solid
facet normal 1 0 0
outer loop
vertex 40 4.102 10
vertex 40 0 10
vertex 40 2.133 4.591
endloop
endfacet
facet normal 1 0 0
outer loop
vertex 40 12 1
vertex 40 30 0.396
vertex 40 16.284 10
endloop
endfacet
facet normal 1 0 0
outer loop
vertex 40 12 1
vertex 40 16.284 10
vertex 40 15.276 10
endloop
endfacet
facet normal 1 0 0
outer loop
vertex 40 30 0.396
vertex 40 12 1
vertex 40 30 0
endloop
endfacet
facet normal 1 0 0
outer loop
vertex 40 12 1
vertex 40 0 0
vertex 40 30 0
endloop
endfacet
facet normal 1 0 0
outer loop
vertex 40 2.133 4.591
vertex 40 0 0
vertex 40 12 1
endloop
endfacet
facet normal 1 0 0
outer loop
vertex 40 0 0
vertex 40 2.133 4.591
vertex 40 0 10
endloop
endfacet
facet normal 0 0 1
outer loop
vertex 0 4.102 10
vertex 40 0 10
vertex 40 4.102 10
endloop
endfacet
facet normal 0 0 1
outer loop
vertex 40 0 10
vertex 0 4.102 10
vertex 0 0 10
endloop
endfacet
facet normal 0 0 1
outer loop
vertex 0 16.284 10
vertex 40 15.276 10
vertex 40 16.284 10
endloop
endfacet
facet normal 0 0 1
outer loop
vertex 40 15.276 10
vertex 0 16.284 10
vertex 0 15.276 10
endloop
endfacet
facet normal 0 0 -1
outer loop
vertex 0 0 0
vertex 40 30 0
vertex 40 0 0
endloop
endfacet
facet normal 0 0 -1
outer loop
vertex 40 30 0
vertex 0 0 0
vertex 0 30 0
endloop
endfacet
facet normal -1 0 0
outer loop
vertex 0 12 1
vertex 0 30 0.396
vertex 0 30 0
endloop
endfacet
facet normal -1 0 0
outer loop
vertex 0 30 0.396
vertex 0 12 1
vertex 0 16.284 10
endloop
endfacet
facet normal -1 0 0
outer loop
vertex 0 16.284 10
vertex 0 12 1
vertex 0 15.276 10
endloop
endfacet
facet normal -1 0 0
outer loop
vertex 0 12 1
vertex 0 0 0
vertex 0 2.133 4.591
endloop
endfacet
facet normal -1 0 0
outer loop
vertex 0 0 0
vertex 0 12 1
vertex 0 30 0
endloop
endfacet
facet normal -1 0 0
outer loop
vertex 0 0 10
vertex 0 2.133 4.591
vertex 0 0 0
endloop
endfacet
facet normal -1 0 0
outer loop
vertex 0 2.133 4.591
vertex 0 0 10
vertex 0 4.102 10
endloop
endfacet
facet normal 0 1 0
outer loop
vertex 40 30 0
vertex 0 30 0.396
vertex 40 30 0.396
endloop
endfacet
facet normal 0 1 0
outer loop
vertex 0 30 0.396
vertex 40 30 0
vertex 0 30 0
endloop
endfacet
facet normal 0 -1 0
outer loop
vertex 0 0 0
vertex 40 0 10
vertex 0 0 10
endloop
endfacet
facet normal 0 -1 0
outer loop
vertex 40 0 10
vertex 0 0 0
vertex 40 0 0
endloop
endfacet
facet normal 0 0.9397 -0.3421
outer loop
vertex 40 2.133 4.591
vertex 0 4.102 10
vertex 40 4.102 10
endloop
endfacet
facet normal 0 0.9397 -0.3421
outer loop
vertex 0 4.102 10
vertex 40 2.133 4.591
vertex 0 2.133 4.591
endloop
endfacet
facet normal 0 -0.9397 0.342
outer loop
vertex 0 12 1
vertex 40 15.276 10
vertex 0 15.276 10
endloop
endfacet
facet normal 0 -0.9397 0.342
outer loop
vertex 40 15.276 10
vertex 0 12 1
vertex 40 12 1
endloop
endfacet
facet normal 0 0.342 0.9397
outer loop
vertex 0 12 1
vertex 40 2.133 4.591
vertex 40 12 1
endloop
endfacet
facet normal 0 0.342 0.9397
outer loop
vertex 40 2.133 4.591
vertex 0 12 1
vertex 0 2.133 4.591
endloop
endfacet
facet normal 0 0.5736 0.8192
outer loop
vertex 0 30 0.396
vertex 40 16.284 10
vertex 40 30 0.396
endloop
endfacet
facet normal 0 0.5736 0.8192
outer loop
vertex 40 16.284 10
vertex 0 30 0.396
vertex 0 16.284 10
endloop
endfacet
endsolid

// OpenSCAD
/*
The MIT License (MIT)

Copyright (c) 2020 Shinichi Ohki.

Permission is hereby granted, free of charge, to any person obtaining a copy
of this software and associated documentation files (the "Software"), to deal
in the Software without restriction, including without limitation the rights
to use, copy, modify, merge, publish, distribute, sublicense, and/or sell
copies of the Software, and to permit persons to whom the Software is
furnished to do so, subject to the following conditions:

The above copyright notice and this permission notice shall be included in
all copies or substantial portions of the Software.

THE SOFTWARE IS PROVIDED "AS IS", WITHOUT WARRANTY OF ANY KIND, EXPRESS OR
IMPLIED, INCLUDING BUT NOT LIMITED TO THE WARRANTIES OF MERCHANTABILITY,
FITNESS FOR A PARTICULAR PURPOSE AND NONINFRINGEMENT. IN NO EVENT SHALL THE
AUTHORS OR COPYRIGHT HOLDERS BE LIABLE FOR ANY CLAIM, DAMAGES OR OTHER
LIABILITY, WHETHER IN AN ACTION OF CONTRACT, TORT OR OTHERWISE, ARISING FROM,
OUT OF OR IN CONNECTION WITH THE SOFTWARE OR THE USE OR OTHER DEALINGS IN
THE SOFTWARE.
*/

module M5Paper() {
    cube([118,66,10.5],center=false);
}

module cutter() {
    cube([42,30,10]);
}

module stand() {
    cube([40,30,10]);
}

module body() {
    difference() {
        stand();
        translate([-1,12,1]){
            rotate([70,0,0]) {
                M5Paper();
            }
        }
        translate([-1,12,13]){
            rotate([-35,0,0]) {
                cutter();
            }
        }
    }
}

body();
